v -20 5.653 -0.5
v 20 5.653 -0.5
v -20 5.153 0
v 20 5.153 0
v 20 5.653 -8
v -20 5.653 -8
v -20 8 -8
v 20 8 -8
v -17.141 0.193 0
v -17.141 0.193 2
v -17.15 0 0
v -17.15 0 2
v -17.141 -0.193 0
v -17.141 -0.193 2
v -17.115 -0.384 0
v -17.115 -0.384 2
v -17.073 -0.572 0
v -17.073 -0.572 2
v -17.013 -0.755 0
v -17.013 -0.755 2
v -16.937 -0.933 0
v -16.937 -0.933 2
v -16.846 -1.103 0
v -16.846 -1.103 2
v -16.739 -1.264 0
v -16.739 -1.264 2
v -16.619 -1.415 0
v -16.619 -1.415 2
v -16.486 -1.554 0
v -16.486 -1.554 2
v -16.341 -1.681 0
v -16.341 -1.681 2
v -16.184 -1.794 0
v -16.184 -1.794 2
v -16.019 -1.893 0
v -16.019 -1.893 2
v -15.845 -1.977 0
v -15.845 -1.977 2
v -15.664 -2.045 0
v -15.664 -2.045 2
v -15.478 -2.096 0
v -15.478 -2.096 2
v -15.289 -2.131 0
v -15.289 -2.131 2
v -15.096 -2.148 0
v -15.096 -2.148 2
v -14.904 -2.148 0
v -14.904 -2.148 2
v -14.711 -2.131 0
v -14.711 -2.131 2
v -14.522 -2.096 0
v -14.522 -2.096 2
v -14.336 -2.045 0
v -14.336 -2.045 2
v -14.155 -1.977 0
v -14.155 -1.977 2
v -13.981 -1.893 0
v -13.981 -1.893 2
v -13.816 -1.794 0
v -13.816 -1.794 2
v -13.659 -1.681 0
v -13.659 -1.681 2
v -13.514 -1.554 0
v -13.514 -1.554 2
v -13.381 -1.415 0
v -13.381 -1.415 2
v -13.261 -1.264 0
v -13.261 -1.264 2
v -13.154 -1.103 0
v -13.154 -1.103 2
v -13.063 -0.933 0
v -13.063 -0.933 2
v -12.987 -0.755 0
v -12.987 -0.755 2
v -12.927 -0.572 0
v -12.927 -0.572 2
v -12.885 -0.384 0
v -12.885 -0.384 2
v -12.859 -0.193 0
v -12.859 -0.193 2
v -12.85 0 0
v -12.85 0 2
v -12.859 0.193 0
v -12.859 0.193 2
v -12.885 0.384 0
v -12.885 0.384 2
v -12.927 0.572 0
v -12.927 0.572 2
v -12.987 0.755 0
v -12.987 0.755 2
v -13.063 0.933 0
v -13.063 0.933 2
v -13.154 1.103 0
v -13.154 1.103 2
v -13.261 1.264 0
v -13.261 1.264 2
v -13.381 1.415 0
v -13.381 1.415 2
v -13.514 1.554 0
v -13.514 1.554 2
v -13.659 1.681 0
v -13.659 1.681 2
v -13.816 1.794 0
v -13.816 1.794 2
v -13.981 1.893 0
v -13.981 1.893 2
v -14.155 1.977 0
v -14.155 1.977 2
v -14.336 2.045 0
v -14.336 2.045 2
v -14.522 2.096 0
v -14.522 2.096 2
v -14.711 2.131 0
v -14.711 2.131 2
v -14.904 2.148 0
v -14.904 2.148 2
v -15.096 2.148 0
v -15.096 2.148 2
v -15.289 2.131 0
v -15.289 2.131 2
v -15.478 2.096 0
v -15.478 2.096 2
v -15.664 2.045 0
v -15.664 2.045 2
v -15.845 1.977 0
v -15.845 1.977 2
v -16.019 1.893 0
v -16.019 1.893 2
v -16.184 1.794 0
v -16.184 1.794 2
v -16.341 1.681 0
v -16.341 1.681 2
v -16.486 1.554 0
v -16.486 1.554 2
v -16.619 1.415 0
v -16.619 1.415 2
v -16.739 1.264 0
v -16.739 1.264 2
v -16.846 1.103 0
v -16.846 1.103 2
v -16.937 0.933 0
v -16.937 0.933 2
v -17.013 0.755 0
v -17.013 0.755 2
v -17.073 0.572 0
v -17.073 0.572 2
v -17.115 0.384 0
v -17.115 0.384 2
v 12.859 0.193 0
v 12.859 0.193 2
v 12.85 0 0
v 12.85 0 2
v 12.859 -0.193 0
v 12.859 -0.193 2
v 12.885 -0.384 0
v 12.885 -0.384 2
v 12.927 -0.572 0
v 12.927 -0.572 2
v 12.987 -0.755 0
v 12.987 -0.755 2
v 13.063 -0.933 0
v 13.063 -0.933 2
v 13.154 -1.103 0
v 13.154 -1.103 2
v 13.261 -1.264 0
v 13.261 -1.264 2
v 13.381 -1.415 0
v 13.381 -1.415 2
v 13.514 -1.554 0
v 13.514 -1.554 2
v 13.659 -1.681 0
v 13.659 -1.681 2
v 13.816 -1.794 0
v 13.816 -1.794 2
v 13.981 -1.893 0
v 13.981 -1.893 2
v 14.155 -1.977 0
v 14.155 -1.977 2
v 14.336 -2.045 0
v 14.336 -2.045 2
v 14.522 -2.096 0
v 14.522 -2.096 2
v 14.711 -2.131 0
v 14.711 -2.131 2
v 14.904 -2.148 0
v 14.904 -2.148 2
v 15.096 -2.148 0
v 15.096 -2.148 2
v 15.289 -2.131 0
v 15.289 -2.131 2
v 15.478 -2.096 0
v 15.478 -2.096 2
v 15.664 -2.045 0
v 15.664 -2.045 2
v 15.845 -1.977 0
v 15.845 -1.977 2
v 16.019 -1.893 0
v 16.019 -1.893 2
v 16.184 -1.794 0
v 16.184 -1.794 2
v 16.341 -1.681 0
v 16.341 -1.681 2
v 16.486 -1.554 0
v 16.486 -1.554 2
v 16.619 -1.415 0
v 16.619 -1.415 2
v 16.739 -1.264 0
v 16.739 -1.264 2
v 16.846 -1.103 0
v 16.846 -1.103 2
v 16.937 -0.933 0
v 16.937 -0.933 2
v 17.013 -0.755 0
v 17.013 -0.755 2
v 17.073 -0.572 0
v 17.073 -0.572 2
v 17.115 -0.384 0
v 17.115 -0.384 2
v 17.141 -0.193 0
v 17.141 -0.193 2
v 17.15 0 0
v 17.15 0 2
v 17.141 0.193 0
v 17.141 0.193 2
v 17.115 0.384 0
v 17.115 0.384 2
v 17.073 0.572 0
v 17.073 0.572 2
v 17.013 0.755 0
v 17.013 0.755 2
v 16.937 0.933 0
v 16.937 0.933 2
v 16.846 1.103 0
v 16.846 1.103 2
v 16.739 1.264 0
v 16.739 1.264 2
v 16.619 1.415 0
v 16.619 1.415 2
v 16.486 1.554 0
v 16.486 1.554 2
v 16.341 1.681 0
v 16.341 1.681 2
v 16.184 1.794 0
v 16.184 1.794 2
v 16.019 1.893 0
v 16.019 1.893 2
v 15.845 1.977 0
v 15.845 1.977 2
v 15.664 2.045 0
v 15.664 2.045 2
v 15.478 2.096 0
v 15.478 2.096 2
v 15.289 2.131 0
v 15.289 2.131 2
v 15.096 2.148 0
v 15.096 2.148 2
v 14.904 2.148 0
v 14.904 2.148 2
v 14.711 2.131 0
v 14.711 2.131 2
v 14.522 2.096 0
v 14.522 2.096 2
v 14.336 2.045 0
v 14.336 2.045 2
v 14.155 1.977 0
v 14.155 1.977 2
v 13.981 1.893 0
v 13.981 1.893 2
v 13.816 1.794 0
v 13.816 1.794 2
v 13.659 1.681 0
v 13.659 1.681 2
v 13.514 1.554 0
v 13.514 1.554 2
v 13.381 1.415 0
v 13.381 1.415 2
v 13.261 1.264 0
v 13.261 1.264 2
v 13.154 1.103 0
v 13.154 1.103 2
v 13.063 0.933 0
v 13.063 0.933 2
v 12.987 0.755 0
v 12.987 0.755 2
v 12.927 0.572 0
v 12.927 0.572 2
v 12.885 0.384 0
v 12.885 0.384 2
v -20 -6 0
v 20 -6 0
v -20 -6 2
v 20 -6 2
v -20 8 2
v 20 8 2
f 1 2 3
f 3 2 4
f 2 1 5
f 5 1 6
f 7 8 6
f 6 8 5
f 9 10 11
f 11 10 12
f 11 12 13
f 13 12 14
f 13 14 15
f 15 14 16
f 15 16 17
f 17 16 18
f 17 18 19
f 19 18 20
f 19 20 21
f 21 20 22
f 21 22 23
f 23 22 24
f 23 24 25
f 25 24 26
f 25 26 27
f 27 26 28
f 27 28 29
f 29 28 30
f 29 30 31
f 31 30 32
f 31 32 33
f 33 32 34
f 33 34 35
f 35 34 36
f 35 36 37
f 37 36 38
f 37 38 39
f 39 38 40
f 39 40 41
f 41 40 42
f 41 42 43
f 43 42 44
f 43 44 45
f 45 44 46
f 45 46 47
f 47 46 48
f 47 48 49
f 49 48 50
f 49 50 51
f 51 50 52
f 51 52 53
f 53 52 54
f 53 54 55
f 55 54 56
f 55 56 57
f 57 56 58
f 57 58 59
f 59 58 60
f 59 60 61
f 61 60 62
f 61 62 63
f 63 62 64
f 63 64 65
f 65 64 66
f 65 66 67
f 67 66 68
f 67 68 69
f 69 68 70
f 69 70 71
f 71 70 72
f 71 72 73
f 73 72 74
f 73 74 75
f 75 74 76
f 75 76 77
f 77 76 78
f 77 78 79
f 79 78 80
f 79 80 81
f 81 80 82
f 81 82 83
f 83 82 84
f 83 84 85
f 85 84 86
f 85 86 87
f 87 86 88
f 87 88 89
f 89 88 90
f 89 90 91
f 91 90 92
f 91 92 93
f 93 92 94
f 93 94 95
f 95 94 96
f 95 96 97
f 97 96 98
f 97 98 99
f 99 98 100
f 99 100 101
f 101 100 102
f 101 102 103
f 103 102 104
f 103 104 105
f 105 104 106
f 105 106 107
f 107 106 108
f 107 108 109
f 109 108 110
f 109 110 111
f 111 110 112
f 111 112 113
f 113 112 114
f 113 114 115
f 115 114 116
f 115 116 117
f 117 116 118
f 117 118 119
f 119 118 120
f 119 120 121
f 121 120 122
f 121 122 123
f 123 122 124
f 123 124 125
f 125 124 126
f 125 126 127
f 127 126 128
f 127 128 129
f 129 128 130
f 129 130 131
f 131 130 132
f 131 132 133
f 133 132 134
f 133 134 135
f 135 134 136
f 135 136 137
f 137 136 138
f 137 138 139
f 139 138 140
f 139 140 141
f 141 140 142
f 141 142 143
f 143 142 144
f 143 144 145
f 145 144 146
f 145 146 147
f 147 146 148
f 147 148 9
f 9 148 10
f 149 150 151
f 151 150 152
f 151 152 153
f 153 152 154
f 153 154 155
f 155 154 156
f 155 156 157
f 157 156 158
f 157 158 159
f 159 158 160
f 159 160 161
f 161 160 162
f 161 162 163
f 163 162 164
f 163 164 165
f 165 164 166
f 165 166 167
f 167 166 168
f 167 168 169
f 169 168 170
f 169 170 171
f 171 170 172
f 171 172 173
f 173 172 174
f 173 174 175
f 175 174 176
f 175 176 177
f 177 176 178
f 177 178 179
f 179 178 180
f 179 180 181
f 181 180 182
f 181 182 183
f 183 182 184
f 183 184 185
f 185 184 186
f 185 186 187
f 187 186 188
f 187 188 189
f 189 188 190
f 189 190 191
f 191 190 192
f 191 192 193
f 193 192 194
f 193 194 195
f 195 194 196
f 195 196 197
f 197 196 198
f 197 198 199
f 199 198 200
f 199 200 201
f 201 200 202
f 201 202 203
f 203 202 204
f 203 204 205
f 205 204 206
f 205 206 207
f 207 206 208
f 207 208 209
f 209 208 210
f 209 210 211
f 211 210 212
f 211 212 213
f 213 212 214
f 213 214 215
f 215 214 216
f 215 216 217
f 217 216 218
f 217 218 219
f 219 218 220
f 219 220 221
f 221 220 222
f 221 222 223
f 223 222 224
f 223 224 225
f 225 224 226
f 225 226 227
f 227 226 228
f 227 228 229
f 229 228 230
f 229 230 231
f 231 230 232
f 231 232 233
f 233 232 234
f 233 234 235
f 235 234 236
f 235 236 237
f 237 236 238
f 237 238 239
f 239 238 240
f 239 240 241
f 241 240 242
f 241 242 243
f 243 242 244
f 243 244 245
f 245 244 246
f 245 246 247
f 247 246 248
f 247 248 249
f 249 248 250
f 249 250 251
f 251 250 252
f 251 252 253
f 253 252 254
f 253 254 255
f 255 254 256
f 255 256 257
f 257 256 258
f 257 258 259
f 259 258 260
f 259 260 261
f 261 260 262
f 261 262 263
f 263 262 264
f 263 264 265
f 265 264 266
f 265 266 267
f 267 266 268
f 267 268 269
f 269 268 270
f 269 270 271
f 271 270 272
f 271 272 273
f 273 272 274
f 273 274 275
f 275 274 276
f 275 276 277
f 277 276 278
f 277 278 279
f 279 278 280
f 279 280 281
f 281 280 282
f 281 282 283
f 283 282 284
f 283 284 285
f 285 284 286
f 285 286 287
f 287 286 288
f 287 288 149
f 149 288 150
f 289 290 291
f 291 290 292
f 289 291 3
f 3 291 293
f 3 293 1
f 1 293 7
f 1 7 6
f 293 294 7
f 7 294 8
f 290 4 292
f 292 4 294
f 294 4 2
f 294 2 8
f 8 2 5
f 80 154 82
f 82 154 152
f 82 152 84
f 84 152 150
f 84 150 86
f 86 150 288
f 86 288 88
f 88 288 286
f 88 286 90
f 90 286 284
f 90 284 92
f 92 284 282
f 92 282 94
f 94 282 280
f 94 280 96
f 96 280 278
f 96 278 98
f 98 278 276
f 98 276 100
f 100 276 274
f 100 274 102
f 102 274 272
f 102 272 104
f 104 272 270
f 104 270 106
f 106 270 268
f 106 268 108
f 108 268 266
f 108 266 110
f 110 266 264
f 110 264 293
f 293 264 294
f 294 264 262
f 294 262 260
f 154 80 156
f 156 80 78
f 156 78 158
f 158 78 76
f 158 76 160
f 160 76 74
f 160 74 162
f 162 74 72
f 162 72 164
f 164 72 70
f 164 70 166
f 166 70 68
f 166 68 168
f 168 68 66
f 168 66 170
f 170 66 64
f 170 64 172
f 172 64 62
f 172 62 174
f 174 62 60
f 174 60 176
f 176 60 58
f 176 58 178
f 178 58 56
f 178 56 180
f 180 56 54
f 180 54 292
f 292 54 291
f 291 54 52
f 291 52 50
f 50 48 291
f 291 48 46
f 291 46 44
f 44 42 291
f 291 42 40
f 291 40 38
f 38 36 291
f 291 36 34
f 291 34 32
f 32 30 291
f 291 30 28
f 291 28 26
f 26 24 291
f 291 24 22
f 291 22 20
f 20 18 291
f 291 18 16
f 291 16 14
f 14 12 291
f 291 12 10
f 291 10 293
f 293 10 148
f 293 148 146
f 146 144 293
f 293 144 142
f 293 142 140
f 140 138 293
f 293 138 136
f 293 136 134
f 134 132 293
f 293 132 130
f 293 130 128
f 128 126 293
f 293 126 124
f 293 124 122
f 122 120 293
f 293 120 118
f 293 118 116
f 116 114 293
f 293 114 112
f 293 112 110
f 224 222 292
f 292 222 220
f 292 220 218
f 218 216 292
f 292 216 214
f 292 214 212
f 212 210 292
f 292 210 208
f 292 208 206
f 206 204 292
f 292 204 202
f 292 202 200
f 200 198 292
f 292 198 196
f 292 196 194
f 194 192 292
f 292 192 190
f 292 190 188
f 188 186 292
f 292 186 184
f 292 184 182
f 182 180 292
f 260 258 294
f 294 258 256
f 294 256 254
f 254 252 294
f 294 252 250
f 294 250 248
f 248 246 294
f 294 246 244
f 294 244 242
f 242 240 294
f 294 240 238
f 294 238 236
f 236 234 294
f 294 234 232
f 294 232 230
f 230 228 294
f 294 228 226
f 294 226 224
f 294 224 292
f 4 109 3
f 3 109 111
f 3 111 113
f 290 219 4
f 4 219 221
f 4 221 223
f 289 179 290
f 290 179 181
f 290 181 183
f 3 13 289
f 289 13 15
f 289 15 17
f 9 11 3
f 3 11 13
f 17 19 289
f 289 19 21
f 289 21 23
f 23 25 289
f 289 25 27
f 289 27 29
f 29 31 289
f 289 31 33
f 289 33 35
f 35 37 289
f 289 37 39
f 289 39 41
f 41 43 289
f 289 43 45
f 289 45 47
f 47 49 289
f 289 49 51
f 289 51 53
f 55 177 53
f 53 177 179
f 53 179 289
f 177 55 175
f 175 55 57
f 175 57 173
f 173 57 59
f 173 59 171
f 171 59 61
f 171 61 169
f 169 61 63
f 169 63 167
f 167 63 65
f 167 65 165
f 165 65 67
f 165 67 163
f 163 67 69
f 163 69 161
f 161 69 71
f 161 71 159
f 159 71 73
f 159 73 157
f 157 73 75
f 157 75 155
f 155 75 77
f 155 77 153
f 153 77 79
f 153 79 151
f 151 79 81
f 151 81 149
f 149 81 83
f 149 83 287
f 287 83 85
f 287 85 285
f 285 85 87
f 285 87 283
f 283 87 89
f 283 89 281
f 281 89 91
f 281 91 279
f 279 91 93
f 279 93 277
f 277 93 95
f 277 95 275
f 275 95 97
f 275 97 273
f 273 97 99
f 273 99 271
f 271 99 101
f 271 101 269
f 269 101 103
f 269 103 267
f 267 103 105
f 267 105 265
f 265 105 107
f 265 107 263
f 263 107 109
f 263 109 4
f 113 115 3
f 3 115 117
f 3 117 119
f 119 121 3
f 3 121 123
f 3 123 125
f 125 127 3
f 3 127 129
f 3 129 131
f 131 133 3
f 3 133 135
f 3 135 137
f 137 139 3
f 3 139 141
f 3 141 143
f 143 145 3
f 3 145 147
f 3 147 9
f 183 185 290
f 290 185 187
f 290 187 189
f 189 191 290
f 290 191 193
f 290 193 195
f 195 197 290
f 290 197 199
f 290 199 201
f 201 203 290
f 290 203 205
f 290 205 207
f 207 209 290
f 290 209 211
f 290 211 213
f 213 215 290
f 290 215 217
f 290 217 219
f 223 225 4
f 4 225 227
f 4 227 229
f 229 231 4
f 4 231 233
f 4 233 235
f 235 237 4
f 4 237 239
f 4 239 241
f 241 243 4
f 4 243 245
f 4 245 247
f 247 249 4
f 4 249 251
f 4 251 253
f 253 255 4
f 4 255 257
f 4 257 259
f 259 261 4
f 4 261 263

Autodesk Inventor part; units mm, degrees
ref_plane "YZ Plane" through (0, 0, 0) normal (1, 0, 0) x (0, 1, 0)
ref_plane "XZ Plane" through (0, 0, 0) normal (0, 1, 0) x (-1, 0, 0)
ref_plane "XY Plane" through (0, 0, 0) normal (0, 0, 1) x (1, 0, 0)
sketch "スケッチ1" plane through (0, 0, 0) normal (0, 0, 1) x (1, 0, 0)
  line L0 (-20, -6) -> (20, -6)
  line L1 (20, -6) -> (20, 8)
  line L2 (20, 8) -> (-20, 8)
  line L3 (-20, 8) -> (-20, -6)
  point P0 (0, 0)
  dimension "d1" = 40
  dimension "d21" = 8
  dimension "d22" = 6
  dimension "d23" = 20
extrude "押し出し1" add sketch "スケッチ1" along normal blind 2
sketch "スケッチ2" plane through (0, 0, 2) normal (0, 0, 1) x (1, 0, 0)
  line L0 (-20, -6) -> (20, -6) projected
  point P0 (0, 0)
  point P1 (-15, 0)
  point P2 (15, 0)
  dimension "d4" = 6
  dimension "d5" = 6
  dimension "d24" = 15
  dimension "d25" = 15
hole "穴1" at (-15, 0, 2) at (15, 0, 2) direction (0, 0, -1) diameter 4.3 end through all clearance for "Flat Head Machine Screw" size "M4" standard "Ansi Metric M Profile"
sketch "スケッチ3" plane through (0, 0, 0) normal (0, 0, -1) x (-1, 0, 0)
  circle A0 centre (15, 0) radius 2.15 projected
  circle A1 centre (-15, 0) radius 2.15 projected
  line L0 (-20, -6) -> (-20, 8) projected
  line L1 (20, -6) -> (-20, -6) projected
  line L2 (20, 8) -> (20, -6) projected
  line L3 (-20, 8) -> (20, 8) projected
  line L4 (-20, 8) -> (20, 8)
  line L5 (20, 8) -> (20, 5.653)
  line L6 (20, 5.653) -> (-20, 5.653)
  line L7 (-20, 5.653) -> (-20, 8)
  point P0 (0, 0)
  point P1 (-20, 5.653)
  dimension "d15" = 2.347
extrude "押し出し2" add sketch "スケッチ3" along normal blind 8 contours L0 L3 L2 L6
chamfer "面取り2" distance 0.5 angle 45 1 edges at (0, 5.653, 0)
properties part number "base38" material "ABS プラスチック"
